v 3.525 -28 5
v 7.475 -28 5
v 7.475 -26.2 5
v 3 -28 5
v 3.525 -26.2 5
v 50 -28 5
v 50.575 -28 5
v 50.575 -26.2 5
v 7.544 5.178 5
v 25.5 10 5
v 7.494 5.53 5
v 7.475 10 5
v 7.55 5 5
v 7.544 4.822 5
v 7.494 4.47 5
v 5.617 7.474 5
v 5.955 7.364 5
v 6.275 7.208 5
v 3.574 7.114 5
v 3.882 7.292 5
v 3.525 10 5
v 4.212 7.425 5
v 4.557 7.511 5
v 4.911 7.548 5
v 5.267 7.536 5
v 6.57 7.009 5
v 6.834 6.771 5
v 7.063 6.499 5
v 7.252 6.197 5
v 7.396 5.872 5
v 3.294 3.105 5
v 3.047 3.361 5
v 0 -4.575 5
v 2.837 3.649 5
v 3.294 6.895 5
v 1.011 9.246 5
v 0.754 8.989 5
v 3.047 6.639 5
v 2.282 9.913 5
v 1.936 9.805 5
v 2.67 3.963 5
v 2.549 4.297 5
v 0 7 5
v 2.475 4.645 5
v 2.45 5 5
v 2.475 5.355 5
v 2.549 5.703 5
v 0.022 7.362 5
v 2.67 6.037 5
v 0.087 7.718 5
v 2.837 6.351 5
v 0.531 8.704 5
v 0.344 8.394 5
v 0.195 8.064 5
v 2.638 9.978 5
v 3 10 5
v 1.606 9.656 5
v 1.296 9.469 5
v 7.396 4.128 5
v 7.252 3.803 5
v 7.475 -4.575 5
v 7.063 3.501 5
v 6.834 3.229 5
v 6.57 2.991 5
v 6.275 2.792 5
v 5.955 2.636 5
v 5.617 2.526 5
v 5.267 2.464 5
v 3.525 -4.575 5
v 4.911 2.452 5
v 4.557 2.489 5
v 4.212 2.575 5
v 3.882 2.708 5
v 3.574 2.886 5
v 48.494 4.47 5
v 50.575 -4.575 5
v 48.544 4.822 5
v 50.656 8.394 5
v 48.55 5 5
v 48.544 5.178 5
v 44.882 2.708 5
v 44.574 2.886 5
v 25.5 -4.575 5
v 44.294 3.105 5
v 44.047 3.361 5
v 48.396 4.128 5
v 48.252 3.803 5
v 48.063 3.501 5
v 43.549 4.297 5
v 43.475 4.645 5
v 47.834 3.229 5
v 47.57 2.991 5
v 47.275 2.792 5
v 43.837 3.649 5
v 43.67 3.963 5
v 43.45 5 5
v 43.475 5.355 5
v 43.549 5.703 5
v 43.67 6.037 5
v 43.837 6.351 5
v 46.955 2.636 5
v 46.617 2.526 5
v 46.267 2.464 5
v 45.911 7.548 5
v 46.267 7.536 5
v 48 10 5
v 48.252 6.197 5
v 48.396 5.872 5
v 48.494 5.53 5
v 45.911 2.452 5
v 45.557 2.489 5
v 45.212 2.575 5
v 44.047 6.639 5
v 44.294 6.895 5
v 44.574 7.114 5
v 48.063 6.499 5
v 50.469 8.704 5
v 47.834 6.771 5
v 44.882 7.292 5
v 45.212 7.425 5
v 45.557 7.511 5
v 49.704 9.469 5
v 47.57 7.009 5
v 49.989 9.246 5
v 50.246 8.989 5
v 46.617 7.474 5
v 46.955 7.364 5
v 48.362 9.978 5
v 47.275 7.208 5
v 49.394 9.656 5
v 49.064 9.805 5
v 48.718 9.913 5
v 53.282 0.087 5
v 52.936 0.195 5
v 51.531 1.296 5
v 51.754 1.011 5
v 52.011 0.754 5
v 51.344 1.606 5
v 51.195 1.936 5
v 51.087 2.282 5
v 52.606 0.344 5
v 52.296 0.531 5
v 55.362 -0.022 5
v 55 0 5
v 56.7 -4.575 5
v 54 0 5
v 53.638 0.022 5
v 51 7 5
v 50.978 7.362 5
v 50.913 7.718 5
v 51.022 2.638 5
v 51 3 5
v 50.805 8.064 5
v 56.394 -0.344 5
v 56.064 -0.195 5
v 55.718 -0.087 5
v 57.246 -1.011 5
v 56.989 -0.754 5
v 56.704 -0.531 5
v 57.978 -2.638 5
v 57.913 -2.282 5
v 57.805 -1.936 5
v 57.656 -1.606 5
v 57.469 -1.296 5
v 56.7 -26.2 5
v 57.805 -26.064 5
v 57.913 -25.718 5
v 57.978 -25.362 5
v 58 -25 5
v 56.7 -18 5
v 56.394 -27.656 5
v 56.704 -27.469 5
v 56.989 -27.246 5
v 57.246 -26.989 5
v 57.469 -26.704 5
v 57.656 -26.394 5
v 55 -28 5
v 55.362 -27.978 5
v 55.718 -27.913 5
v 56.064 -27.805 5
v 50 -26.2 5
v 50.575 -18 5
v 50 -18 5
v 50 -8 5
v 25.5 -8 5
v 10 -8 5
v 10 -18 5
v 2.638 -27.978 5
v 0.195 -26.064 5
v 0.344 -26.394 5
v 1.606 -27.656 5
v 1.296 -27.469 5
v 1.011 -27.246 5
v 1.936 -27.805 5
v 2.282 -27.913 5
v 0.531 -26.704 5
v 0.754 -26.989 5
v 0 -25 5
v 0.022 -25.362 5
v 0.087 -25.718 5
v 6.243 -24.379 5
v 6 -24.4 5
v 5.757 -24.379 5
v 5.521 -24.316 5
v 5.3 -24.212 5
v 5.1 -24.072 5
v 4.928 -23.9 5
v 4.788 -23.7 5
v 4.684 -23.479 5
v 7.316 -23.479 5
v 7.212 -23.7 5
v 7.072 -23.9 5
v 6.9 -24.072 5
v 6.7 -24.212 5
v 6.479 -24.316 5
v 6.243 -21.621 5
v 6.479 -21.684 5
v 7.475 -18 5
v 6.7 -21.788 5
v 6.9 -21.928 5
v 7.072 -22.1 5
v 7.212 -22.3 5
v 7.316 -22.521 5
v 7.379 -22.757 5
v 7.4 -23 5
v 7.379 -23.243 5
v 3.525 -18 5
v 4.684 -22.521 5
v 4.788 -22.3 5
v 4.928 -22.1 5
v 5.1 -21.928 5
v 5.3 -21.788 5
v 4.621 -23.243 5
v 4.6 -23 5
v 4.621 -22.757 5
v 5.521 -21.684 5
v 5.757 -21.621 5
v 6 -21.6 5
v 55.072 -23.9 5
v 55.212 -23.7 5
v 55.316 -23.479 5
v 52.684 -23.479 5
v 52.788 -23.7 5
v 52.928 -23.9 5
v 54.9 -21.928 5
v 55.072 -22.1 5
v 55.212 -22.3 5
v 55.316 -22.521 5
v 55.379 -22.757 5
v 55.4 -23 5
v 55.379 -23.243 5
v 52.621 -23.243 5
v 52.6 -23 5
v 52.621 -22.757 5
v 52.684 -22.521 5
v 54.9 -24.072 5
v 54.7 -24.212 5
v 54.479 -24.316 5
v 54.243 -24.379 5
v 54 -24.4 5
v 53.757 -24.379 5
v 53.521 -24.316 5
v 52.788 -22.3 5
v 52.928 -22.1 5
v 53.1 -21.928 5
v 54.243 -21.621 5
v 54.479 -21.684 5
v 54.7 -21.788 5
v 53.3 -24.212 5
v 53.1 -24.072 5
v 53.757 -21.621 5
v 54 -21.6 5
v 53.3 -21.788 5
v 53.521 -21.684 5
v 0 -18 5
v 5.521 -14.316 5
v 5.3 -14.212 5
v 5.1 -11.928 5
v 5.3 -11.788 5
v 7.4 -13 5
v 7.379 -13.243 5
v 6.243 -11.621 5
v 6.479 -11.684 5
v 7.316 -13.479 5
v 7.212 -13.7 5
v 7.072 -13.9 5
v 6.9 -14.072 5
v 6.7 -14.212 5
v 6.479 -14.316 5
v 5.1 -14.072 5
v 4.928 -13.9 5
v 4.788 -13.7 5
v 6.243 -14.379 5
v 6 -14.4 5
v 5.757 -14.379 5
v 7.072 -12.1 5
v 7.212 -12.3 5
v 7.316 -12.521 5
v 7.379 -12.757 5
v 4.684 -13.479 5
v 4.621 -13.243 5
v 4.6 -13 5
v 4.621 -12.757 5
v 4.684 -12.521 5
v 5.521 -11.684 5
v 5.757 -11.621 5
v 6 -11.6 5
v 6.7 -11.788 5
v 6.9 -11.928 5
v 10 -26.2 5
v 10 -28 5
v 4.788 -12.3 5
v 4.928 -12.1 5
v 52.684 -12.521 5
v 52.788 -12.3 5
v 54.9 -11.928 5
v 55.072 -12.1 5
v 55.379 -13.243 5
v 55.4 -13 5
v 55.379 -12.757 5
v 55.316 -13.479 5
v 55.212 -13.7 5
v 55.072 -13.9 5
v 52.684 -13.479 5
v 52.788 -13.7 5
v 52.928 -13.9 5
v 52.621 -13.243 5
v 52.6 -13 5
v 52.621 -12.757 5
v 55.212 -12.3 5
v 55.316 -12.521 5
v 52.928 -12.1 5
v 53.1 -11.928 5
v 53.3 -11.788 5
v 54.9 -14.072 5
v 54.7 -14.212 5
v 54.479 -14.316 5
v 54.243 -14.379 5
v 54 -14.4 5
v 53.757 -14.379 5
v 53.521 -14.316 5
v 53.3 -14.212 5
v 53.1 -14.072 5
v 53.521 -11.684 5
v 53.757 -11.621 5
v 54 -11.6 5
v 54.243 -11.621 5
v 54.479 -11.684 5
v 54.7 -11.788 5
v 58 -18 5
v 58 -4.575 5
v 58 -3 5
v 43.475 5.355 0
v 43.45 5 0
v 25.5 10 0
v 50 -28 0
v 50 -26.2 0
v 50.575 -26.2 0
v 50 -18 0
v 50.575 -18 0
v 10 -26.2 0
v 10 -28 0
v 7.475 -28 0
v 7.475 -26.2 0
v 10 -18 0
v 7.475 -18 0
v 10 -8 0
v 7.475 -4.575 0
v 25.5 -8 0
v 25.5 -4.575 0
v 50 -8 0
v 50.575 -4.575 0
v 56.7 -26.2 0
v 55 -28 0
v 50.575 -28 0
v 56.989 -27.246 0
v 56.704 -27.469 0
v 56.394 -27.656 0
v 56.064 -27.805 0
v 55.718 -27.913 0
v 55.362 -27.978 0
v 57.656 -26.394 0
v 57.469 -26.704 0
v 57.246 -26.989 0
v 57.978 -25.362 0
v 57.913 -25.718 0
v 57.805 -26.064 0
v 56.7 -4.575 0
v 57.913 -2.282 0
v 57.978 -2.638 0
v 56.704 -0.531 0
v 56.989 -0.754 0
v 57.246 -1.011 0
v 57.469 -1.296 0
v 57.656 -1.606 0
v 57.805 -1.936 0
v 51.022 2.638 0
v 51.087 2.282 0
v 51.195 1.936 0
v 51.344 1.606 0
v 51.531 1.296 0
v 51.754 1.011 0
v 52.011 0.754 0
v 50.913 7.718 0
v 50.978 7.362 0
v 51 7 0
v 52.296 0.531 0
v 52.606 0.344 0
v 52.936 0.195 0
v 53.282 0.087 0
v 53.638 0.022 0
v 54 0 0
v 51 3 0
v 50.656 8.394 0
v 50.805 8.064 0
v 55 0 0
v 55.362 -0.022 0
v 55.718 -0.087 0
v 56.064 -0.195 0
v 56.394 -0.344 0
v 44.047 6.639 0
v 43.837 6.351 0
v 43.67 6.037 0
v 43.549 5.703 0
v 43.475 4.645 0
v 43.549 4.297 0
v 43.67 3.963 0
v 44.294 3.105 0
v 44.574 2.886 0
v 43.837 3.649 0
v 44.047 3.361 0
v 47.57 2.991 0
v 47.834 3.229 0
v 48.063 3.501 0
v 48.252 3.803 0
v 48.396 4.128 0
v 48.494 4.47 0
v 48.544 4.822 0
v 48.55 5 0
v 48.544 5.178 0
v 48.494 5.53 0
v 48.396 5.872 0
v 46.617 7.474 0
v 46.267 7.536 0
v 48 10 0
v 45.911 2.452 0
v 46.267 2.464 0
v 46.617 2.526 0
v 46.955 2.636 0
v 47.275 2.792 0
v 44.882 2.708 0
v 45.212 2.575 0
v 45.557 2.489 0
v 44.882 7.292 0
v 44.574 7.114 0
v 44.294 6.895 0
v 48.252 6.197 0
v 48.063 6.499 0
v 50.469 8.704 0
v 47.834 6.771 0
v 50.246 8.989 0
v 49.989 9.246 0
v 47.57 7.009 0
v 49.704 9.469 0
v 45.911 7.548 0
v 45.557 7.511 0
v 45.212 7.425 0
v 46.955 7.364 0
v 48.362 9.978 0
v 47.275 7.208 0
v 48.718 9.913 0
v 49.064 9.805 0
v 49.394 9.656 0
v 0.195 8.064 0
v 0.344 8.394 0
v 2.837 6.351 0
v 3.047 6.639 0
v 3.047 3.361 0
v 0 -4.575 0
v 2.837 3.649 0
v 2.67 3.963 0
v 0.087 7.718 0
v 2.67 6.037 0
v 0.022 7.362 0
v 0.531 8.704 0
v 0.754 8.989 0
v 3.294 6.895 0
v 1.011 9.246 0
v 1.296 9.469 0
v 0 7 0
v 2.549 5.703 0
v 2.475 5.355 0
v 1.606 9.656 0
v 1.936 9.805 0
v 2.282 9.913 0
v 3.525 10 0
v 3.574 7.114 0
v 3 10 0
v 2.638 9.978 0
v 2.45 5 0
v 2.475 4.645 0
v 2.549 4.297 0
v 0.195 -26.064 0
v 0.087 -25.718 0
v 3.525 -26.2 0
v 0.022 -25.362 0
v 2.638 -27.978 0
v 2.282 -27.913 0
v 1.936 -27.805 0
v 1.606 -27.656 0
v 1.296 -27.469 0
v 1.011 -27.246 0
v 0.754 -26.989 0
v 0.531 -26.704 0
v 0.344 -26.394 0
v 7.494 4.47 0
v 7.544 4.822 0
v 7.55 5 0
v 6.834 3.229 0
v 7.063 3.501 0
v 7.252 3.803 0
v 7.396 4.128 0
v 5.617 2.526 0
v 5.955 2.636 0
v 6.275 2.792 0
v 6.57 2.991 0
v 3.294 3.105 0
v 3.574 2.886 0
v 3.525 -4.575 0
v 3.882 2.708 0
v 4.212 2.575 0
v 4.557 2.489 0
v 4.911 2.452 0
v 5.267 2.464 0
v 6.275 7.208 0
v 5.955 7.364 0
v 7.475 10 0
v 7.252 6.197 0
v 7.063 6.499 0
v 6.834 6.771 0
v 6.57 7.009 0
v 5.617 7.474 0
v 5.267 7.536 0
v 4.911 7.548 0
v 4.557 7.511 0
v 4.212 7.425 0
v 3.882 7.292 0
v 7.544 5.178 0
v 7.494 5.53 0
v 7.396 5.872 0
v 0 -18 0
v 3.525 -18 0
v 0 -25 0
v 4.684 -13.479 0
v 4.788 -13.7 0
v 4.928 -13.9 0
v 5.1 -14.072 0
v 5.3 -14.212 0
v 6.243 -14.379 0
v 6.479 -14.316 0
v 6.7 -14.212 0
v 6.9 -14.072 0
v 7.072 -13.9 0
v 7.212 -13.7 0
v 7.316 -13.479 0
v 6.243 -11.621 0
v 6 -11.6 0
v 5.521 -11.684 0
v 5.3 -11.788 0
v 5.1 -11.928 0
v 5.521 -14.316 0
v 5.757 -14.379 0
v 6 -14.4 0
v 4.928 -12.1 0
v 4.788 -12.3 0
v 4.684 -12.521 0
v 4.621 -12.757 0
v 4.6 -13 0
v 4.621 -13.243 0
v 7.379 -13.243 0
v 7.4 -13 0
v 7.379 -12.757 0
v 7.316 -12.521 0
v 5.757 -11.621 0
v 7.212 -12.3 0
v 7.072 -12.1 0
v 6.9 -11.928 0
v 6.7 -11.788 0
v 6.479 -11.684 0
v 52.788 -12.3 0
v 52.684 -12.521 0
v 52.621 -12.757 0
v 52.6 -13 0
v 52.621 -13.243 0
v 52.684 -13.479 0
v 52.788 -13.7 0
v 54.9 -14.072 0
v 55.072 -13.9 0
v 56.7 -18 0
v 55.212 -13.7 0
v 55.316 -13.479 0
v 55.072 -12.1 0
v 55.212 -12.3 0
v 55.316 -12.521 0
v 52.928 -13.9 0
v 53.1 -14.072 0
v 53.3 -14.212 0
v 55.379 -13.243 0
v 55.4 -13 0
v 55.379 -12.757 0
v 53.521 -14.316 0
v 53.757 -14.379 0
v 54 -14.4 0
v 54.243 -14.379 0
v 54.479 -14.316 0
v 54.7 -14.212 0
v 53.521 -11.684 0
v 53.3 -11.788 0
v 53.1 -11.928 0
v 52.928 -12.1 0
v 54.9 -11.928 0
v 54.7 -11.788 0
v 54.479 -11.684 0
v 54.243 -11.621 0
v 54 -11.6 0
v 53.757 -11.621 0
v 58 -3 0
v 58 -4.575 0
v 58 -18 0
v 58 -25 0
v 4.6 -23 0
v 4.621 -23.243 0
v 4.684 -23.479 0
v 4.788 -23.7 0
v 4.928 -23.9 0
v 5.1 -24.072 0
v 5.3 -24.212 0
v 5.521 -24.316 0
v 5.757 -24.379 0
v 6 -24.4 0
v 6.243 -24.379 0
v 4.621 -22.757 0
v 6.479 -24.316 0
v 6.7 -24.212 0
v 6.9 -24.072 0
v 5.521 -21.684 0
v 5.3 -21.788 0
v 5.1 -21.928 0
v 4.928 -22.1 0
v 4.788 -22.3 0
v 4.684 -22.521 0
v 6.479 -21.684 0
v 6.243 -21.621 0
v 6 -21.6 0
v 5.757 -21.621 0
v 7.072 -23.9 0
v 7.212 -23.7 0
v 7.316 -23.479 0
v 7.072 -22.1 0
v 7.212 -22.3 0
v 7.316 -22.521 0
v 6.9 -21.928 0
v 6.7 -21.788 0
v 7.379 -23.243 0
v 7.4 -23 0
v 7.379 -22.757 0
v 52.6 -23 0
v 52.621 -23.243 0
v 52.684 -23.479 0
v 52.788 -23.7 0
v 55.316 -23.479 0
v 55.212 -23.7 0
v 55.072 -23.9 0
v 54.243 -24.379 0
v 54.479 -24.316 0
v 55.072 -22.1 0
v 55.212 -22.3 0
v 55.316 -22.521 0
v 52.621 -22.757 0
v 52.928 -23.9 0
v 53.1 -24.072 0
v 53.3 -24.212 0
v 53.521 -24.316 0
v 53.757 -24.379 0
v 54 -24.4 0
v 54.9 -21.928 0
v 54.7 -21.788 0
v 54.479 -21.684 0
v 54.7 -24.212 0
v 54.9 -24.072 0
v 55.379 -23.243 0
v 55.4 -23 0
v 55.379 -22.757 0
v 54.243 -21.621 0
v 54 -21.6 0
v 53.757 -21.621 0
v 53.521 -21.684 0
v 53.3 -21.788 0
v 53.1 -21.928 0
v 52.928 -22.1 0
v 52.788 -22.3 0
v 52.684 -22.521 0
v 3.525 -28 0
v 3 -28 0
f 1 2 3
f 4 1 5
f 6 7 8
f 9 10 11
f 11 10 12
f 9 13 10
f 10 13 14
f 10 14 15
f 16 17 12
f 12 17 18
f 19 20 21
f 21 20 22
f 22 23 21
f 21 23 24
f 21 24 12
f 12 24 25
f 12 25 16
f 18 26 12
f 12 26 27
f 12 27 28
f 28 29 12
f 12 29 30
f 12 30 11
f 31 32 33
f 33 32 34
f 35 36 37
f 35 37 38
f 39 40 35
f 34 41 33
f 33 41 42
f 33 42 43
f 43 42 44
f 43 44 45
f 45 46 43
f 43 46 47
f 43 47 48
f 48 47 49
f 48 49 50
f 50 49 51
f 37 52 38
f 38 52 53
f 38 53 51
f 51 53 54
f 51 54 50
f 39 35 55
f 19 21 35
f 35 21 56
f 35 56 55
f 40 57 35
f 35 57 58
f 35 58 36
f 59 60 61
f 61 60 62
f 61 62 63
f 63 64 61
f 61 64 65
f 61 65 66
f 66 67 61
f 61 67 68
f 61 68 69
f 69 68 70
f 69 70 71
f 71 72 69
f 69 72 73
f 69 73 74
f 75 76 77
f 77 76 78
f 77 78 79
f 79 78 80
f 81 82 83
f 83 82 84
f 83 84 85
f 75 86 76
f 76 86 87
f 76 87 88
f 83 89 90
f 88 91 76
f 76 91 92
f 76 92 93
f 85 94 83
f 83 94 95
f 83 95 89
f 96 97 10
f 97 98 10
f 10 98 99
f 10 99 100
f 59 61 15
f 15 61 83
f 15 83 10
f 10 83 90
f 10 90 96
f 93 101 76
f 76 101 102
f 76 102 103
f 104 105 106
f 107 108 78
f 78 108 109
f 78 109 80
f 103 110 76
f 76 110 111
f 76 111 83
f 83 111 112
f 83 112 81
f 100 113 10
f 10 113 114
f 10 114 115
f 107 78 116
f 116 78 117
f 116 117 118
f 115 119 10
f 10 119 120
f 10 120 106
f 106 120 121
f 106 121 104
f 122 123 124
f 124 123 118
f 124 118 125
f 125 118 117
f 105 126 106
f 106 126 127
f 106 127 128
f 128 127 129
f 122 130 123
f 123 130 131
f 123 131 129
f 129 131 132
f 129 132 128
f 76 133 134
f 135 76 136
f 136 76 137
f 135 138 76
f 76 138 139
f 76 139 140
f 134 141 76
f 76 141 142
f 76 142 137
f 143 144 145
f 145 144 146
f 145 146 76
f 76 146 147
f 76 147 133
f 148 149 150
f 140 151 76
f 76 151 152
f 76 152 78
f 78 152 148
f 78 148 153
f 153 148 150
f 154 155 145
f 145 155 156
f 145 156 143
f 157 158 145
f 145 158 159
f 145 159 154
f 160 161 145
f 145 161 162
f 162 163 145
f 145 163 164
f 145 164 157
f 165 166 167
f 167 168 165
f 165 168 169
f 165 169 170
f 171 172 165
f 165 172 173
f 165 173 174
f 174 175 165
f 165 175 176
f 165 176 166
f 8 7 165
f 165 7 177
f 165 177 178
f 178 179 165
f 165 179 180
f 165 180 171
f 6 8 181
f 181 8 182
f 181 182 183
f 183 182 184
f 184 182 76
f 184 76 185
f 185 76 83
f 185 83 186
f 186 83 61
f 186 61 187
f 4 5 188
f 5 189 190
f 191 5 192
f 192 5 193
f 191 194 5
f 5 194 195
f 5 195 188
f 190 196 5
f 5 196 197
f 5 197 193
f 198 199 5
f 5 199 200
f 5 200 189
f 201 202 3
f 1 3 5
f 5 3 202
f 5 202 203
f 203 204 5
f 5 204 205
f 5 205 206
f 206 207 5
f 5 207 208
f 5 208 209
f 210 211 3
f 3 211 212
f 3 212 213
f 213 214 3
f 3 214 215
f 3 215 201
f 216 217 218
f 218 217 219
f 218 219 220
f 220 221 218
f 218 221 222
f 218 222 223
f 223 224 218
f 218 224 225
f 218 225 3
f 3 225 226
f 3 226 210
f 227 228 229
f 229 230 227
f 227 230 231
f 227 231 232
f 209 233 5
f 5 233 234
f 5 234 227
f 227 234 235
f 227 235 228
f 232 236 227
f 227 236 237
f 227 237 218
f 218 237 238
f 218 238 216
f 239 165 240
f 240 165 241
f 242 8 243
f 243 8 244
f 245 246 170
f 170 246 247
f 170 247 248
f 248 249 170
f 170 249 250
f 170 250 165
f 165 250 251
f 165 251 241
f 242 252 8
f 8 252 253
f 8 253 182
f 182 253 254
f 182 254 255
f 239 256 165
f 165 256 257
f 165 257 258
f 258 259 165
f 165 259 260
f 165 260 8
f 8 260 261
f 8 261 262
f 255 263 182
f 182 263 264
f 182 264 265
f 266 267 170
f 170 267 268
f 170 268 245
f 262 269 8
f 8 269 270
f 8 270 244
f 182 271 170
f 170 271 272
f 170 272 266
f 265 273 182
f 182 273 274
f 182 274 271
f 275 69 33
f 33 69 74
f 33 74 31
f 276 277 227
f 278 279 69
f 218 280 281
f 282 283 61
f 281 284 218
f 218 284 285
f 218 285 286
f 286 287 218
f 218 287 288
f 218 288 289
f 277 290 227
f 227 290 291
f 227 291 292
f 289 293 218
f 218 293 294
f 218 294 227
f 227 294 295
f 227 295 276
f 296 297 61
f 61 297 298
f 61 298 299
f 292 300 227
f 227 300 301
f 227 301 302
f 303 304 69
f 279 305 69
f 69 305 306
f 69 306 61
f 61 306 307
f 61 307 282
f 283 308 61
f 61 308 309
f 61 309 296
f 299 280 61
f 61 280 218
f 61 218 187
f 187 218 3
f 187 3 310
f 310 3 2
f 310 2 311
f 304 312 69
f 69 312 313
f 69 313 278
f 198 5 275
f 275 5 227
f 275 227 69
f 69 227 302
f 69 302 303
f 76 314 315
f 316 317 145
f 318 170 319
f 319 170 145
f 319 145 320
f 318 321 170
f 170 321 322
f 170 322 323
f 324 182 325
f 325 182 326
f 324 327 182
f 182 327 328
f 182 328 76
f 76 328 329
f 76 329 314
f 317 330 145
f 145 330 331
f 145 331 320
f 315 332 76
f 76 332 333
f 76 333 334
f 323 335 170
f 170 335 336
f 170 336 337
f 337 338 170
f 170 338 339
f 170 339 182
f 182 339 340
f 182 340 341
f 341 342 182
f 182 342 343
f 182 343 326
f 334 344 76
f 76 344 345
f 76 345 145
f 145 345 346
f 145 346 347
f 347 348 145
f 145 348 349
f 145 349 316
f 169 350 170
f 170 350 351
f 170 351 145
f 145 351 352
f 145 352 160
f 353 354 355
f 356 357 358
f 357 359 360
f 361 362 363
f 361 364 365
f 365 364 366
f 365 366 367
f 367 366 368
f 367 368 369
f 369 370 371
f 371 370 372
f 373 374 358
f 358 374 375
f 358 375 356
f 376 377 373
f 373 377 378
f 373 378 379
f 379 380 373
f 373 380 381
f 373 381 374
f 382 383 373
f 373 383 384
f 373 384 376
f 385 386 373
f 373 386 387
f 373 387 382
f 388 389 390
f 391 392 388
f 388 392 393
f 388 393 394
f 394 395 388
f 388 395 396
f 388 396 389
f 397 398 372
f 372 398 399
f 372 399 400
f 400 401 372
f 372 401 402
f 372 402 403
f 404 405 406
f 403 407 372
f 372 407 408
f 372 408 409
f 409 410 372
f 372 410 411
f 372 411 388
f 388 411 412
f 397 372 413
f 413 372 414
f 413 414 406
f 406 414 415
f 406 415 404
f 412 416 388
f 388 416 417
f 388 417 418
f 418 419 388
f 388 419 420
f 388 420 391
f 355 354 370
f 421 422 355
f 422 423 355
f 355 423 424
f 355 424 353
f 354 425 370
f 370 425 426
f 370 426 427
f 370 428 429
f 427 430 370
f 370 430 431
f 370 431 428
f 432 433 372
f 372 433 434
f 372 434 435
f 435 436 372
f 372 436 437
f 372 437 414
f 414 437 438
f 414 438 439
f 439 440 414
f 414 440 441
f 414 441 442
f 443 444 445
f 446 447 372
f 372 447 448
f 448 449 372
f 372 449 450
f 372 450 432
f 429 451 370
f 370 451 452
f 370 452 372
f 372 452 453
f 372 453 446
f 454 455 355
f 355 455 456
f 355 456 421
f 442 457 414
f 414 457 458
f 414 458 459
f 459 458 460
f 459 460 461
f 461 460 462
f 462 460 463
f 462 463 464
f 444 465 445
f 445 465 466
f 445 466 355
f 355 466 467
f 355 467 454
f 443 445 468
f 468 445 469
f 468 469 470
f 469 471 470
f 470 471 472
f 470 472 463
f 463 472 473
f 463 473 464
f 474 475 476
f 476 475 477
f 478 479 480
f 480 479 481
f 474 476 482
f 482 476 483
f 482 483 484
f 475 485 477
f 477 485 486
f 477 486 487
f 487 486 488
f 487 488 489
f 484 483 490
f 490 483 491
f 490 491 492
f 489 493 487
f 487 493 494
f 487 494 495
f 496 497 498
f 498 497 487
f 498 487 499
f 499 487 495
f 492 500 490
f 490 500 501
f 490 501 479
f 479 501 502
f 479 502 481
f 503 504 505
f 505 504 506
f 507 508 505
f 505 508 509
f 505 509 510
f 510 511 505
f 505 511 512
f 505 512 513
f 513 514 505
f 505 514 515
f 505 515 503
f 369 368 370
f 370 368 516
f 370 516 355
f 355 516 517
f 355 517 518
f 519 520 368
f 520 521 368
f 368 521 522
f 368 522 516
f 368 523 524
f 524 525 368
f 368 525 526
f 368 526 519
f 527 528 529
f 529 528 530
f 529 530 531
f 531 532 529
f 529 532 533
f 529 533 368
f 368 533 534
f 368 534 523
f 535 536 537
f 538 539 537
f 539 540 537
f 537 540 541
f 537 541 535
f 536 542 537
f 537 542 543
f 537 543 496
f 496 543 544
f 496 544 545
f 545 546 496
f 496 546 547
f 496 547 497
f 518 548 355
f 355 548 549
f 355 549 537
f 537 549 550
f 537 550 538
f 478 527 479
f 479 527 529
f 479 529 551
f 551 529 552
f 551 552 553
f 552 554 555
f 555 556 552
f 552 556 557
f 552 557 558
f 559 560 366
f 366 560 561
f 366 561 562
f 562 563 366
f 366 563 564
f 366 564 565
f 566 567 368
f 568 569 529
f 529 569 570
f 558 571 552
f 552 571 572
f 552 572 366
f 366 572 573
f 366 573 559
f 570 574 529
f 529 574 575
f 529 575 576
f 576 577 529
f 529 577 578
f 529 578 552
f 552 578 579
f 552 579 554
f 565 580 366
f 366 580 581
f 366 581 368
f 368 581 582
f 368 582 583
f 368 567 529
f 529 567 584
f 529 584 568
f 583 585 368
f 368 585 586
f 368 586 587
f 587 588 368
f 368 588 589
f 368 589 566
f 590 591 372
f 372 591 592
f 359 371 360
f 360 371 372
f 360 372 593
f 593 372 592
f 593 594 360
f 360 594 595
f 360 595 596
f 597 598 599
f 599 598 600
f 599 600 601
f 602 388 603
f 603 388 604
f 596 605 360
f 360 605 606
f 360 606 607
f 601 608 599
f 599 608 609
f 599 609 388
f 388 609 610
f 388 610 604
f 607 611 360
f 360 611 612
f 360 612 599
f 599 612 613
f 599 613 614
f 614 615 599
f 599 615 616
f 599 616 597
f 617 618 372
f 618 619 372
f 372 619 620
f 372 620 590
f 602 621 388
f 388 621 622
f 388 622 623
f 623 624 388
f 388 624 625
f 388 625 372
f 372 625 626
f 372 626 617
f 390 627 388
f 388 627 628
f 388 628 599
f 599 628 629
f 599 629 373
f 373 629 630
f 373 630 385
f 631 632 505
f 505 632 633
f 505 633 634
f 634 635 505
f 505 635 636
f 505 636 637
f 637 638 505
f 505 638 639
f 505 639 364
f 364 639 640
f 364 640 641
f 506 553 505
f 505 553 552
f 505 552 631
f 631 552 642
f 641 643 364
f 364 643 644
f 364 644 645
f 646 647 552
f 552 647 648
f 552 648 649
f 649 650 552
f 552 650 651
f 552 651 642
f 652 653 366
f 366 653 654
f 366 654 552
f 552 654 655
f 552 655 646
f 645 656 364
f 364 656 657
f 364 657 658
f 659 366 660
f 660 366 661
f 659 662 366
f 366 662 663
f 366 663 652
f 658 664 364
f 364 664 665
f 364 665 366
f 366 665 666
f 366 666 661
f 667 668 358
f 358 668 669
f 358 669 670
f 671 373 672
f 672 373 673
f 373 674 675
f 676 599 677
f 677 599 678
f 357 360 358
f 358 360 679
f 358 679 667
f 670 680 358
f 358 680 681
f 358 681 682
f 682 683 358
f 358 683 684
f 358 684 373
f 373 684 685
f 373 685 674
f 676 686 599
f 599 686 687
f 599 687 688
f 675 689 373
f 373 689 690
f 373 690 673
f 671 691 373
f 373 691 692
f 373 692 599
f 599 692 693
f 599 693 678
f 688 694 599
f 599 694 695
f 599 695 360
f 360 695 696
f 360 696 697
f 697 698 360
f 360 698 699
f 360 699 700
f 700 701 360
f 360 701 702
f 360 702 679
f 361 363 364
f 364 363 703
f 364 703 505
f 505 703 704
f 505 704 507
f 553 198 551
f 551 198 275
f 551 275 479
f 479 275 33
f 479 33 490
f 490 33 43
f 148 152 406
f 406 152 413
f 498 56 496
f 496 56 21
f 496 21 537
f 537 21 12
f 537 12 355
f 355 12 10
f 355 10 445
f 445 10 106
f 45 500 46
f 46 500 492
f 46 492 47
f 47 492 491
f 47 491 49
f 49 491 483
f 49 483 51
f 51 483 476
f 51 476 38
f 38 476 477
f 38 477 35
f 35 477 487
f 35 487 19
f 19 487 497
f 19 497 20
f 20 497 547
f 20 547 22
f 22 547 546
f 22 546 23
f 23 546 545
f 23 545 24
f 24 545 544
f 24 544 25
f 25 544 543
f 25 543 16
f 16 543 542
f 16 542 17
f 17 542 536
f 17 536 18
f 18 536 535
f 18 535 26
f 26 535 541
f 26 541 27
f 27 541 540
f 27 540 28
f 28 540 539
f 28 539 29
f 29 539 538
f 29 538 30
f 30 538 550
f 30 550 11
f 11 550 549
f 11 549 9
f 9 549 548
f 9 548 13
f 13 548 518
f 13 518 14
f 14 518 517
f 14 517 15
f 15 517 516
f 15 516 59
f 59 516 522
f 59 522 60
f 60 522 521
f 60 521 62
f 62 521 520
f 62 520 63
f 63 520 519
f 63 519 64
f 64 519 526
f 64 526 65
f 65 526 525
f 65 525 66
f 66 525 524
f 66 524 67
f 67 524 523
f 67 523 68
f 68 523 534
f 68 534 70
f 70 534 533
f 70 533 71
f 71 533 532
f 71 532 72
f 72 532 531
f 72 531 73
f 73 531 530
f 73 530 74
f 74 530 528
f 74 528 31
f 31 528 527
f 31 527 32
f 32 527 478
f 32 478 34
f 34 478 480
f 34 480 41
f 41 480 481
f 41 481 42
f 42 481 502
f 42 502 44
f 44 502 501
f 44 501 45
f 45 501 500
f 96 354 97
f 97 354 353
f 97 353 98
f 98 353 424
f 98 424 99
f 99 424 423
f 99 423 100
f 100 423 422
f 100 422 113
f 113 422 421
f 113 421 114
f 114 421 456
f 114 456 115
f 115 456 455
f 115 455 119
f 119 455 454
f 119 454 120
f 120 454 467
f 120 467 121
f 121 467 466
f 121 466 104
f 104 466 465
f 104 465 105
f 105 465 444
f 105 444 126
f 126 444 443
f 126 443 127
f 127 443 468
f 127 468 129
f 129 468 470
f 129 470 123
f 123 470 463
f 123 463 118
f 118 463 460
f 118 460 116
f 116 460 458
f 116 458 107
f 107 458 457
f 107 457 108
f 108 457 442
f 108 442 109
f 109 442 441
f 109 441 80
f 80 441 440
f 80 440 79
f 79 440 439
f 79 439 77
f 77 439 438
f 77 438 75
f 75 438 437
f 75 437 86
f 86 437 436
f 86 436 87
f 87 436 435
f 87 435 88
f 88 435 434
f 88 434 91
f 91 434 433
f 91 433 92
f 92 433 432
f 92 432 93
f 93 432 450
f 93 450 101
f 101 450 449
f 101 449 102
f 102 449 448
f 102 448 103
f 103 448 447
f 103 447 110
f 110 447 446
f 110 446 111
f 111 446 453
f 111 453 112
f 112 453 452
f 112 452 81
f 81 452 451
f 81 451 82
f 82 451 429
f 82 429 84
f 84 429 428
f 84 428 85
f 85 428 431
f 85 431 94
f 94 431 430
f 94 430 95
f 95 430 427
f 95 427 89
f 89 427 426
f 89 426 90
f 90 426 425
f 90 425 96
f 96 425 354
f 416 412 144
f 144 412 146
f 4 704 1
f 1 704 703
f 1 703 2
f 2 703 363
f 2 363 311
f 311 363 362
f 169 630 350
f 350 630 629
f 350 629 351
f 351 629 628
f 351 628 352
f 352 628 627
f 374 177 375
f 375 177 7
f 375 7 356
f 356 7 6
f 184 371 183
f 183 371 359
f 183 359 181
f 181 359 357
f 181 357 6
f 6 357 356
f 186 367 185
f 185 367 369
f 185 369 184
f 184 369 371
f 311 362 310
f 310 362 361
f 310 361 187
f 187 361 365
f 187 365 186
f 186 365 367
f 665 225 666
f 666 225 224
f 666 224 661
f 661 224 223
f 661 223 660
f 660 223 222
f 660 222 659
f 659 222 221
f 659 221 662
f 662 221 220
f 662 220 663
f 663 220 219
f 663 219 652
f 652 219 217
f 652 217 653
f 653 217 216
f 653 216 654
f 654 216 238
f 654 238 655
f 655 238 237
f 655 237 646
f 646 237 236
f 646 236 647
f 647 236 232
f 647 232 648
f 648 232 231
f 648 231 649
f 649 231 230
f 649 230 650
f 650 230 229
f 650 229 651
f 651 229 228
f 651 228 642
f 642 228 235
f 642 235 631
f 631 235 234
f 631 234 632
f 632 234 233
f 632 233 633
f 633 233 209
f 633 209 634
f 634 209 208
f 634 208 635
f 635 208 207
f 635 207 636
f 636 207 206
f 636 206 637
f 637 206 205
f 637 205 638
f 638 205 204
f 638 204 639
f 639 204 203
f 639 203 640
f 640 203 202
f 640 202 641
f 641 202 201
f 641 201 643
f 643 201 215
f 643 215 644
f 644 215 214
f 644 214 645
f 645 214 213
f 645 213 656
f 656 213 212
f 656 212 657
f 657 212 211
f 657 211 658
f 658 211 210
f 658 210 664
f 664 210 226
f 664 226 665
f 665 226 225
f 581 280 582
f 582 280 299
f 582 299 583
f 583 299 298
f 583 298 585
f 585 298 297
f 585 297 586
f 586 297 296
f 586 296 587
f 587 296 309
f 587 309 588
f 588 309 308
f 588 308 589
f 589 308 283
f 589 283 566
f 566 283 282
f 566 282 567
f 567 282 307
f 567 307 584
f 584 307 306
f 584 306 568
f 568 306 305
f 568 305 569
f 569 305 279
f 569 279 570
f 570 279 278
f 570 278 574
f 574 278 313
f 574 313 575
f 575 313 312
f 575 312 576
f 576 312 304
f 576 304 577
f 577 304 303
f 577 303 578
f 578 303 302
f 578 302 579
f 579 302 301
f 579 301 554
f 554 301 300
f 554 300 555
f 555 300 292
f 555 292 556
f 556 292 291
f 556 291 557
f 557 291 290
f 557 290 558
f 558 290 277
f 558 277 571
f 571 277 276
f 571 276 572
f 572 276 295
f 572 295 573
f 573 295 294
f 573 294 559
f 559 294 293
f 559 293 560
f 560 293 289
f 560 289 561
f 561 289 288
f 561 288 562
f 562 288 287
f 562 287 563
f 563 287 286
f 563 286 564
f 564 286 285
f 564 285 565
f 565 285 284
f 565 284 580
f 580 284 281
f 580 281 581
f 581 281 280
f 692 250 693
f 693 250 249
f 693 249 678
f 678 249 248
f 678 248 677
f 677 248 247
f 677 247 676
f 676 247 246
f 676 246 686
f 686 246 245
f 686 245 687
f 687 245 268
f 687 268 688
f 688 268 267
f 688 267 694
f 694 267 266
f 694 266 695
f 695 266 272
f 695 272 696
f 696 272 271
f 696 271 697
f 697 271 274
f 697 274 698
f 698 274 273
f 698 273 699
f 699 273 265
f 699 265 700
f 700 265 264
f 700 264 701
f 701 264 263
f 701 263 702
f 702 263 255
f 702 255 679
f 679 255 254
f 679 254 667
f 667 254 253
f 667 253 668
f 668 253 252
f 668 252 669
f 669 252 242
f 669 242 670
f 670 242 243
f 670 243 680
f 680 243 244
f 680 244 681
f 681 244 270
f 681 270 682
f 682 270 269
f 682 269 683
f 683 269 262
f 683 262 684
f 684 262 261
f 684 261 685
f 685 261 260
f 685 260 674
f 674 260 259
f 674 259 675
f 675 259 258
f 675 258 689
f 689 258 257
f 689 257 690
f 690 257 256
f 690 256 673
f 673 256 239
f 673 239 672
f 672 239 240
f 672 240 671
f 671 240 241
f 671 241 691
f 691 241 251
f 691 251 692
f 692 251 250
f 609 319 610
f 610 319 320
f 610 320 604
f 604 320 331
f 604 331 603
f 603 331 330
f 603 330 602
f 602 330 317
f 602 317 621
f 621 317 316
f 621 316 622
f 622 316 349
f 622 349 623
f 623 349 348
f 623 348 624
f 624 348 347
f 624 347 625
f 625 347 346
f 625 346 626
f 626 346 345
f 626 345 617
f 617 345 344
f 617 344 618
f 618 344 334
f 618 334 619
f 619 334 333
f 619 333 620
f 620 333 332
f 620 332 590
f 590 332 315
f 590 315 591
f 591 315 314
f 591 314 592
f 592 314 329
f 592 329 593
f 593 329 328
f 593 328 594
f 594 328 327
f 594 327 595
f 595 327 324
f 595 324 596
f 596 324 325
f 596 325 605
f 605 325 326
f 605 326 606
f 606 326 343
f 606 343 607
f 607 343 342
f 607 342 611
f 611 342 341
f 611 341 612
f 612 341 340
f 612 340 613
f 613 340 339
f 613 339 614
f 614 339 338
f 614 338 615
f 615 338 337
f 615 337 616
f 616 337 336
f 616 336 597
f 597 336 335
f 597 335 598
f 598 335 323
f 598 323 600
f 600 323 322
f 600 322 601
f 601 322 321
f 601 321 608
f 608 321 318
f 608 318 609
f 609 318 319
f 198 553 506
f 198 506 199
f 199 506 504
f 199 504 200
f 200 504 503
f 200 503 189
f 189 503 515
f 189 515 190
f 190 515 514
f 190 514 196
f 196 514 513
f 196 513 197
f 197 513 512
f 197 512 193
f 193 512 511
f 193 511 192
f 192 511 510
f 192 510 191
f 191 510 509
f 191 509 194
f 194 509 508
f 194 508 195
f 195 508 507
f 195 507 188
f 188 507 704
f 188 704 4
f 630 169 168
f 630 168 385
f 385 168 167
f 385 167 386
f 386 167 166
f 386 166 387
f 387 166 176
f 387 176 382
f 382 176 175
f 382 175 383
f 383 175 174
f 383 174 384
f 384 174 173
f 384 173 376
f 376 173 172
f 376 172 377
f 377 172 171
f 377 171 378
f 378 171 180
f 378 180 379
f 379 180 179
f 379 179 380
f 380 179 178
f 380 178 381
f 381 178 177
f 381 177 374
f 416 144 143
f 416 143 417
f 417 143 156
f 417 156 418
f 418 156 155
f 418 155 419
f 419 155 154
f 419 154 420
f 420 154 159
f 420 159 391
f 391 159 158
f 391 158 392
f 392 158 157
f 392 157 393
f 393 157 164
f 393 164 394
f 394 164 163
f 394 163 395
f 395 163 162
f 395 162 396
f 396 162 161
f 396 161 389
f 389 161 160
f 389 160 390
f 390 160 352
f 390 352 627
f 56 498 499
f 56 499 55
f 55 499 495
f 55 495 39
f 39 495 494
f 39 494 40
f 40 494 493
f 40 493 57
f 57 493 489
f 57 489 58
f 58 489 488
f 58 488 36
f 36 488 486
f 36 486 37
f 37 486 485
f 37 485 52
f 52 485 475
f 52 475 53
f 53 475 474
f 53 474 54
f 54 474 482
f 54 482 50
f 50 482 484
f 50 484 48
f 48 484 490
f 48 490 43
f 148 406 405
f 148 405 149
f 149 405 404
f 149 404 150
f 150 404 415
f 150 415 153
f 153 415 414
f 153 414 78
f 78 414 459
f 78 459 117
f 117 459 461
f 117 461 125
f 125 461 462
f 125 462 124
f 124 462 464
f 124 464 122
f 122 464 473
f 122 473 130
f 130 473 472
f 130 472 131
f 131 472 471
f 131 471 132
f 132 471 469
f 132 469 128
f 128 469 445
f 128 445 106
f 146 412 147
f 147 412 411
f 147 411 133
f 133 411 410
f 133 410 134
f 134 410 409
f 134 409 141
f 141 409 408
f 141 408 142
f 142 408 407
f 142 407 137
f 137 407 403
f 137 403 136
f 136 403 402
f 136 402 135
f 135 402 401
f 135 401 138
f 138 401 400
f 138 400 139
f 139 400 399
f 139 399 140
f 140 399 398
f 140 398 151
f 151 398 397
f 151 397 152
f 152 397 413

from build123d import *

# Parameters (mm, degrees)
SKETCH1_W           = 51
SKETCH1_H           = 10
SKETCH1_R           = 2.55
BOSS_EXTRUDE1_DEPTH = 5
SKETCH2_R           = 1.4
BOSS_EXTRUDE2_DEPTH = 5
FILLET1_R           = 3


with BuildPart() as part:
    # Sketch1 → Boss-Extrude1 (new body)
    with BuildSketch(Plane.XY):
        with Locations((25.5, 5)):
            Rectangle(SKETCH1_W, SKETCH1_H)
        with Locations((5, 5)):
            Circle(SKETCH1_R, mode=Mode.SUBTRACT)
        with Locations((46, 5)):
            Circle(SKETCH1_R, mode=Mode.SUBTRACT)
    extrude(amount=BOSS_EXTRUDE1_DEPTH)

    # Sketch2 → Boss-Extrude2 (add)
    with BuildSketch(Plane.XY.offset(5)):
        Polygon((10, -28), (10, -8), (50, -8), (50, -28), (58, -28), (58, 0), (51, 0), (0, 0), (0, -28), align=None)
        with Locations((6, -23)):
            Circle(SKETCH2_R, mode=Mode.SUBTRACT)
        with Locations((6, -13)):
            Circle(SKETCH2_R, mode=Mode.SUBTRACT)
        with Locations((54, -23)):
            Circle(SKETCH2_R, mode=Mode.SUBTRACT)
        with Locations((54, -13)):
            Circle(SKETCH2_R, mode=Mode.SUBTRACT)
    extrude(amount=-BOSS_EXTRUDE2_DEPTH)

    # Fillet1
    fillet1_edges = [part.edges().sort_by_distance(p)[0] for p in [
        (0, -28, 2.5),
        (58, 0, 2.5),
        (58, -28, 2.5),
        (0, 10, 2.5),
        (51, 10, 2.5),
        (51, 0, 2.5),
    ]]
    fillet(fillet1_edges, radius=FILLET1_R)


solid = part.part
